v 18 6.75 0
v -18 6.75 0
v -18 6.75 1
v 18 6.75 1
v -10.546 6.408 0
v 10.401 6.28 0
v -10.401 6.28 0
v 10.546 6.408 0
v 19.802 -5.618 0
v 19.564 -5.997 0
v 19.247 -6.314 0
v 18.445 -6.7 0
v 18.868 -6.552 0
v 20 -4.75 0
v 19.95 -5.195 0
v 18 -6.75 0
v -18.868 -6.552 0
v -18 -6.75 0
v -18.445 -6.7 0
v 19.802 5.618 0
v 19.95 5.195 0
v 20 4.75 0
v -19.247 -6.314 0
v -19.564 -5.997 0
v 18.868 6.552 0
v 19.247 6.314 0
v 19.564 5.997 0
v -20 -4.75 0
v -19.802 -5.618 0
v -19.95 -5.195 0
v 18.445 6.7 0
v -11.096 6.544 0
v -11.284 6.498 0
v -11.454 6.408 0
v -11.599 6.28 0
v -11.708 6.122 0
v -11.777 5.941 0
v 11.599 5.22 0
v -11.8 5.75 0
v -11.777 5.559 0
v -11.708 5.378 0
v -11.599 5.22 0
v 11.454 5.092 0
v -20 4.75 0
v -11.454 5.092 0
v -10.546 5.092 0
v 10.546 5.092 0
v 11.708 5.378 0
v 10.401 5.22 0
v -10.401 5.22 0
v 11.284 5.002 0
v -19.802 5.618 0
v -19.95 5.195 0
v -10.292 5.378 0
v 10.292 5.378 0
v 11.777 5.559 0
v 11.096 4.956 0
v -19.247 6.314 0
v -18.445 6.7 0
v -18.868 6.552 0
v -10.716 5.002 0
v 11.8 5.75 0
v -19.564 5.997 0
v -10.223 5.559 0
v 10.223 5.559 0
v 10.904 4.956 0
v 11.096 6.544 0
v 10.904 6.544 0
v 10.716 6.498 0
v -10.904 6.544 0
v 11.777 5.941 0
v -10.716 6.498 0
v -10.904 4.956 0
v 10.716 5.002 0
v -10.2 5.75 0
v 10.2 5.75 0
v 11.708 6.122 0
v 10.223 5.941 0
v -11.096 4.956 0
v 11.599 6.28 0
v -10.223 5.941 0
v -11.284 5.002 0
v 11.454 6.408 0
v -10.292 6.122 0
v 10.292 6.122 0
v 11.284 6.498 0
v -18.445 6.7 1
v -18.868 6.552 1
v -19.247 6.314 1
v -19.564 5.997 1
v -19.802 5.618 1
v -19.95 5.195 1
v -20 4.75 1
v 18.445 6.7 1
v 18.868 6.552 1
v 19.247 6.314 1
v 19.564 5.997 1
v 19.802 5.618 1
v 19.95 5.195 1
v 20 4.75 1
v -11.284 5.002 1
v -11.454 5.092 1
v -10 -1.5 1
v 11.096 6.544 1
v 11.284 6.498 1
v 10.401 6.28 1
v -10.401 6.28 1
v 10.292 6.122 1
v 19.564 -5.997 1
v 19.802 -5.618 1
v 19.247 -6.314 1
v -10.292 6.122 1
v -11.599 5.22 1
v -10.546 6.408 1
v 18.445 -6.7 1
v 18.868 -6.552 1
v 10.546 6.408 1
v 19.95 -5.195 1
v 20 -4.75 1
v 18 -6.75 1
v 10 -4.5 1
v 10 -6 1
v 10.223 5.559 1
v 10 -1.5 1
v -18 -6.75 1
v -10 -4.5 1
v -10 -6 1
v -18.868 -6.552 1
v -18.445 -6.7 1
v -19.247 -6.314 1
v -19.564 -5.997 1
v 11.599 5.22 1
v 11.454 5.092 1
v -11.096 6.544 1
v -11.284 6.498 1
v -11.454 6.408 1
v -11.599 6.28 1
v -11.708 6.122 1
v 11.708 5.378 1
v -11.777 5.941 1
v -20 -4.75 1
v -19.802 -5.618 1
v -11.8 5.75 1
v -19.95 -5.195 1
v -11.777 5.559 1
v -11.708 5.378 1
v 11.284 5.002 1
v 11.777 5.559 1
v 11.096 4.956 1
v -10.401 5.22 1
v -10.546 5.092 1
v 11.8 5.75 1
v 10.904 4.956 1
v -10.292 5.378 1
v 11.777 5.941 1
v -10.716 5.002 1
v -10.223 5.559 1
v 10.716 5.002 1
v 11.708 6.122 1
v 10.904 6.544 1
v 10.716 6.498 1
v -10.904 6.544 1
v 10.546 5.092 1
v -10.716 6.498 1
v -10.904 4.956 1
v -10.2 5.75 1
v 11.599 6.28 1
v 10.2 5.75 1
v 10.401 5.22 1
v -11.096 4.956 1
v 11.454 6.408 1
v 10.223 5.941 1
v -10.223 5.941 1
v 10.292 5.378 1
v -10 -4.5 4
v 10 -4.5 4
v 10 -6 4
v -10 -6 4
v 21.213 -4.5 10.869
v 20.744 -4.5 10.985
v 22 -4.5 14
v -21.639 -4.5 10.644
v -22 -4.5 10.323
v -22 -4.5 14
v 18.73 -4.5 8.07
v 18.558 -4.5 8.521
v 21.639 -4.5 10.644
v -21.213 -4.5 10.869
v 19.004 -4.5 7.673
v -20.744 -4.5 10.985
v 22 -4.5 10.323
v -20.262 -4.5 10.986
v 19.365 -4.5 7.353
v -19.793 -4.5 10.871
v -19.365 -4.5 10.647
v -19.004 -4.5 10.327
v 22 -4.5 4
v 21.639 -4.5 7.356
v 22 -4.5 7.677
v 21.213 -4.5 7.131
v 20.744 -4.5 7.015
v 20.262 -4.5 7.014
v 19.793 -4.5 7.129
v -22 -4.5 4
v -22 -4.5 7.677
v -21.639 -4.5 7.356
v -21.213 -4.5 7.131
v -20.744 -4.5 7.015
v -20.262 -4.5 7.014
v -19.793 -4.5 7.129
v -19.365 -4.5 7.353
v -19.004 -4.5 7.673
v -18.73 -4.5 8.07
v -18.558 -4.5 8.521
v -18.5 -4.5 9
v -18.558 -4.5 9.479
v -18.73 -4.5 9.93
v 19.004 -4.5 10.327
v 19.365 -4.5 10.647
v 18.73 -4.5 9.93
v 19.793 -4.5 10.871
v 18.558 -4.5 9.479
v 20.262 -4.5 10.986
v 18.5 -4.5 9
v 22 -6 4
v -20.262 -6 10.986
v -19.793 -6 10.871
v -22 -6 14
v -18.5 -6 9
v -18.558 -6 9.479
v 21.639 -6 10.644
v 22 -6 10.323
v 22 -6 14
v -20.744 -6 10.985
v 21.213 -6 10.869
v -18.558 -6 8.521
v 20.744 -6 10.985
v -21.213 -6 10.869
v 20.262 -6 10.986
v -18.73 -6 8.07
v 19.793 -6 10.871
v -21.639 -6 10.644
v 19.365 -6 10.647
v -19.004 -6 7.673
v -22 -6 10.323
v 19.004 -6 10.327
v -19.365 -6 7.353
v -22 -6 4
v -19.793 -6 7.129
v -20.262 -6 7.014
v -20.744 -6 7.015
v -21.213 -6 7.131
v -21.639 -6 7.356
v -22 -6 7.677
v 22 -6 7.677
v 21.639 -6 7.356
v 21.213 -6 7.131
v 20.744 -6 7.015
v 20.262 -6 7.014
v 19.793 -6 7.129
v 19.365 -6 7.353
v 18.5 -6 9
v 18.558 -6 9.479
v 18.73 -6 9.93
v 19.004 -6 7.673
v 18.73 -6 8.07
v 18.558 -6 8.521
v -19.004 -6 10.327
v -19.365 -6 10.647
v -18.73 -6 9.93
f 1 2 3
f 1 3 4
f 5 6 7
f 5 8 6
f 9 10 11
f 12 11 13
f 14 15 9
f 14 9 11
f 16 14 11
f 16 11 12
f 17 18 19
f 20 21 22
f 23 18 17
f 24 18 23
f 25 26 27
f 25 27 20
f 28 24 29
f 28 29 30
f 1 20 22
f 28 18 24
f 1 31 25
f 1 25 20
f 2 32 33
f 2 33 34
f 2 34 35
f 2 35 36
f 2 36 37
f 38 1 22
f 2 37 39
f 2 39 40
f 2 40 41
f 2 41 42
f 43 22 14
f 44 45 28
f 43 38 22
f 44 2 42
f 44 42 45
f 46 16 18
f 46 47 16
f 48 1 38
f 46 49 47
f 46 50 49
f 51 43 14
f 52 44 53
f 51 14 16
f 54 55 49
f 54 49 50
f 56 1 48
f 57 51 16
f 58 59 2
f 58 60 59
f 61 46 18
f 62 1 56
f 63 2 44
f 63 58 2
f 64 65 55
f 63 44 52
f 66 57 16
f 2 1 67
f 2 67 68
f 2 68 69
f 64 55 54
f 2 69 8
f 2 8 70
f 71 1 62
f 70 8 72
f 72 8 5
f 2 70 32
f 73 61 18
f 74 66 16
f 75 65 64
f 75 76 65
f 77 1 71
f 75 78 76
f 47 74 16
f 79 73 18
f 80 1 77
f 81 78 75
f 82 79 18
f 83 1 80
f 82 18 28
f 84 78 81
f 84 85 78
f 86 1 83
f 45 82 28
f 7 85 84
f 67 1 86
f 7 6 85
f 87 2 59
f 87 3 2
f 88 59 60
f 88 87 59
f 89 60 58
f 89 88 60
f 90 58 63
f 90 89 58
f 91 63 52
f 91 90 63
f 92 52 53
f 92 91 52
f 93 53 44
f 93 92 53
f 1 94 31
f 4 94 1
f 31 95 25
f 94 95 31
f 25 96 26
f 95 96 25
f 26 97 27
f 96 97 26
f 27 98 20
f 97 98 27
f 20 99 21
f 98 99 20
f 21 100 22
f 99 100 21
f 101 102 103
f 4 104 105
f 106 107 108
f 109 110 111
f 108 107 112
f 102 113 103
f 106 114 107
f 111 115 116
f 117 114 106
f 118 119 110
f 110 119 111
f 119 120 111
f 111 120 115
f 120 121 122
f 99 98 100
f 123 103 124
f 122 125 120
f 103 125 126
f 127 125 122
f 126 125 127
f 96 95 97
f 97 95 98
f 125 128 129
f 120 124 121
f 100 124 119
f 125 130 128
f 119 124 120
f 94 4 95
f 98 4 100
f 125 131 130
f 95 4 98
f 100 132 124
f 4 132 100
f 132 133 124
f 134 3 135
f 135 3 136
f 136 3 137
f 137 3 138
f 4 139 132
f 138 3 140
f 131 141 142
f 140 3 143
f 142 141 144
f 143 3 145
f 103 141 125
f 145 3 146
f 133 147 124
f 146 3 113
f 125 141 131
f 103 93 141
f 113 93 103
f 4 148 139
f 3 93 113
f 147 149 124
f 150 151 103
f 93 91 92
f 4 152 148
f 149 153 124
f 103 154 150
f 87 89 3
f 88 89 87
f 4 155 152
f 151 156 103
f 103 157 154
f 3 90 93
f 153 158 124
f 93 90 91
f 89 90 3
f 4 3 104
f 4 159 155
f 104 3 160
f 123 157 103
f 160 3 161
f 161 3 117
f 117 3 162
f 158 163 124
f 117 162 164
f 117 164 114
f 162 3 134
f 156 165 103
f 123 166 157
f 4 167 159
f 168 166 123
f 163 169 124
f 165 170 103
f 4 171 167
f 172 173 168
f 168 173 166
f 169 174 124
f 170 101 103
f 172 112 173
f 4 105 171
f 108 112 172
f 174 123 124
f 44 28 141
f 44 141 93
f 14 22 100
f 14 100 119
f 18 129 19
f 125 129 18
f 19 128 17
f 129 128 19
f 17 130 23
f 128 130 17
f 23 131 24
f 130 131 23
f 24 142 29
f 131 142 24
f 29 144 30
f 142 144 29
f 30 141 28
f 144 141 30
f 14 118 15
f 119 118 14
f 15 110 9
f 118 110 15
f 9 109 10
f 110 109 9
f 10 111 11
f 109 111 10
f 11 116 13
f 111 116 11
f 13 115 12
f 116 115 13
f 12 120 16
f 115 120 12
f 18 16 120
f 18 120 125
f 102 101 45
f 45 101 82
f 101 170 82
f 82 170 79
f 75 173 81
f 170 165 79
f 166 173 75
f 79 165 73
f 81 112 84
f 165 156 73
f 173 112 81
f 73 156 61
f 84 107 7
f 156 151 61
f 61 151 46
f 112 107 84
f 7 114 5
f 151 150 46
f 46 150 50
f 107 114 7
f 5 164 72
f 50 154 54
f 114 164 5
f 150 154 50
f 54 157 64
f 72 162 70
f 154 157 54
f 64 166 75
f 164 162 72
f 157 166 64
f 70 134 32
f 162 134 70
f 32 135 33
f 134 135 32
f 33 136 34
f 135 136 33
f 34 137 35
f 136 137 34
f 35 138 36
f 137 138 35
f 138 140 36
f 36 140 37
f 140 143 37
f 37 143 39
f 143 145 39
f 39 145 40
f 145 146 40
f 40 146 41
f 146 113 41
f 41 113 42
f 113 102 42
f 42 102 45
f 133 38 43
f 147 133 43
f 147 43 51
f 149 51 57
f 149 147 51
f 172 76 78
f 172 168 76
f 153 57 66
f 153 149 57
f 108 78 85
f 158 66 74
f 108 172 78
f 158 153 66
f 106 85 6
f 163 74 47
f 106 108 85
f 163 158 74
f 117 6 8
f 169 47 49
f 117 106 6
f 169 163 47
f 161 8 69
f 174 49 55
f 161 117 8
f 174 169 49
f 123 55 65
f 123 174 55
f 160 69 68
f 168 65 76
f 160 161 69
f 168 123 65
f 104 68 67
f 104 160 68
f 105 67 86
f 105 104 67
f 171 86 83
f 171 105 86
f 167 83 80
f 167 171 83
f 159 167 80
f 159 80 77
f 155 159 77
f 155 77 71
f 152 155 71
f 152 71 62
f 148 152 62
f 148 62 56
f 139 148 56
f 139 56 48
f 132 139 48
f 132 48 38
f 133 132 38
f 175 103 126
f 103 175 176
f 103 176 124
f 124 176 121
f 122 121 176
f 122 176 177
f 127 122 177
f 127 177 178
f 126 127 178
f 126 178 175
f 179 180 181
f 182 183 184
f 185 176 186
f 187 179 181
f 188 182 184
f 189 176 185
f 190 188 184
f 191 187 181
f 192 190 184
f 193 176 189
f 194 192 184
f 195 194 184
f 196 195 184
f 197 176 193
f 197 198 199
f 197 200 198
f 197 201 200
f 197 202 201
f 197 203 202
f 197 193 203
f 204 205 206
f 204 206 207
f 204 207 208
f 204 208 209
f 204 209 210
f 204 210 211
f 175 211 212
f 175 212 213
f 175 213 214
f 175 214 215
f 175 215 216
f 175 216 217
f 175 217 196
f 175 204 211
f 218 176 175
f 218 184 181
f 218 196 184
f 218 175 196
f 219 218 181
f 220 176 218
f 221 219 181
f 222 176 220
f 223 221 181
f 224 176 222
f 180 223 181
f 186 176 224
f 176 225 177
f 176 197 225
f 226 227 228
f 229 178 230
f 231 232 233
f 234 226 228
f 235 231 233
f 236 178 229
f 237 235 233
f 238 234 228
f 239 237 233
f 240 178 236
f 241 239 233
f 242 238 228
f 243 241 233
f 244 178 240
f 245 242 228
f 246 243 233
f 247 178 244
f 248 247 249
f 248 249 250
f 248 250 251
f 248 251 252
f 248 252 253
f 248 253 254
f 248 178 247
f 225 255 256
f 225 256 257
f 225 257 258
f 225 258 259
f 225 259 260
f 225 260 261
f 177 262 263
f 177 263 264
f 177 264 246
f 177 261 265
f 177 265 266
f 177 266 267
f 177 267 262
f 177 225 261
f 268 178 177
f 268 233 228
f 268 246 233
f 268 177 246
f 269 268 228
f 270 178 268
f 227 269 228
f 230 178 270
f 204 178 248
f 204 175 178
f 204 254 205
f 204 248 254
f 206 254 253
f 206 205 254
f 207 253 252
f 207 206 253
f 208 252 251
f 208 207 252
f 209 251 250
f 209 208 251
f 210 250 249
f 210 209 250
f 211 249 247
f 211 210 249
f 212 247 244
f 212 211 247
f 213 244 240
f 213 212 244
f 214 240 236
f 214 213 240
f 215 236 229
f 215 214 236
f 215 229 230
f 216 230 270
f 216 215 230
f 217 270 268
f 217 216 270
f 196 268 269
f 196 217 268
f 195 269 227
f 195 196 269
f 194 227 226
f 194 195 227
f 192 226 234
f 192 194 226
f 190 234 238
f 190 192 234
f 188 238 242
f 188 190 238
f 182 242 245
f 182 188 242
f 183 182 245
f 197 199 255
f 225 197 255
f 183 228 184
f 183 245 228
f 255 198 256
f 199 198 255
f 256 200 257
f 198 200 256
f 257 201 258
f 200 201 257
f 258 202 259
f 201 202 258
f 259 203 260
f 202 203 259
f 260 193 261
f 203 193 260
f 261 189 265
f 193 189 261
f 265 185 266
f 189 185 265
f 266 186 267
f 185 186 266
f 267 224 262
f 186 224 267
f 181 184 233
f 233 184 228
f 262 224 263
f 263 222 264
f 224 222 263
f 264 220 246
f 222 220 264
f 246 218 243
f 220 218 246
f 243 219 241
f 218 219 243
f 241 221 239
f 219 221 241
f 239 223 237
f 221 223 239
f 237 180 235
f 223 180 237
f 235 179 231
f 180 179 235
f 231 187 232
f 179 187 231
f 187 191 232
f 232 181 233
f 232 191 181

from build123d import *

# Parameters (mm, degrees)
SKETCH001_W     = 40
SKETCH001_H     = 13.5
PAD_DEPTH       = 1
FILLET_R        = 2
SKETCH002_R     = 0.8
POCKET_DEPTH    = 85.45809
SKETCH_W        = 20
SKETCH_H        = 1.5
PAD001_DEPTH    = 3
SKETCH003_W     = 44
SKETCH003_H     = 1.5
PAD002_DEPTH    = 10
SKETCH005_R     = 2
POCKET001_DEPTH = 98.464305
PAD003_DEPTH    = 20


with BuildPart() as part:
    # Sketch001 → Pad (new body)
    with BuildSketch(Plane.XY):
        Rectangle(SKETCH001_W, SKETCH001_H)
    extrude(amount=PAD_DEPTH)

    # Fillet
    fillet_edges = [part.edges().sort_by_distance(p)[0] for p in [
        (20, 6.75, 0.5),
        (20, -6.75, 0.5),
        (-20, -6.75, 0.5),
        (-20, 6.75, 0.5),
    ]]
    fillet(fillet_edges, radius=FILLET_R)

    # Sketch002 (on Face5 of Fillet) → Pocket (cut, through all)
    with BuildSketch(Plane.XY.offset(1)):
        with Locations((-11, 5.75)):
            Circle(SKETCH002_R)
    pocket = extrude(amount=-POCKET_DEPTH, mode=Mode.SUBTRACT)

    # Mirrored: Pocket across Sketch002 V_Axis
    add(pocket.mirror(Plane(origin=(0, 0, 1), x_dir=(0, 0, 1), z_dir=(1, 0, 0))), mode=Mode.SUBTRACT)

    # Sketch (on Face5 of Mirrored) → Pad001 (join)
    with BuildSketch(Plane.XY.offset(1)):
        with Locations((0, -5.25)):
            Rectangle(SKETCH_W, SKETCH_H)
    extrude(amount=PAD001_DEPTH)

    # Sketch003 (on Face17 of Pad001) → Pad002 (join)
    with BuildSketch(Plane.XY.offset(4)):
        with Locations((0, -5.25)):
            Rectangle(SKETCH003_W, SKETCH003_H)
    extrude(amount=PAD002_DEPTH)

    # Sketch005 (on Face17 of Pad002) → Pocket001 (cut, through all)
    with BuildSketch(Plane(origin=(0, -4.5, 0), x_dir=(-1, 0, 0), z_dir=(0, 1, 0))):
        with Locations((-20.5, 9)):
            Circle(SKETCH005_R)
    pocket001 = extrude(amount=-POCKET001_DEPTH, mode=Mode.SUBTRACT)

    # Mirrored001: Pocket001 across Sketch005 V_Axis
    add(pocket001.mirror(Plane(origin=(0, -4.5, 0), x_dir=(0, 1, 0), z_dir=(-1, 0, 0))), mode=Mode.SUBTRACT)

    # Sketch006 (on Face16 of Mirrored001) → Pad003 (join)
    with BuildSketch(Plane(origin=(-10, 0, 0), x_dir=(0, -1, 0), z_dir=(-1, 0, 0))):
        Polygon((4.5, 4), (1.5, 1), (4.5, 1), align=None)
    extrude(amount=-PAD003_DEPTH)


solid = part.part
